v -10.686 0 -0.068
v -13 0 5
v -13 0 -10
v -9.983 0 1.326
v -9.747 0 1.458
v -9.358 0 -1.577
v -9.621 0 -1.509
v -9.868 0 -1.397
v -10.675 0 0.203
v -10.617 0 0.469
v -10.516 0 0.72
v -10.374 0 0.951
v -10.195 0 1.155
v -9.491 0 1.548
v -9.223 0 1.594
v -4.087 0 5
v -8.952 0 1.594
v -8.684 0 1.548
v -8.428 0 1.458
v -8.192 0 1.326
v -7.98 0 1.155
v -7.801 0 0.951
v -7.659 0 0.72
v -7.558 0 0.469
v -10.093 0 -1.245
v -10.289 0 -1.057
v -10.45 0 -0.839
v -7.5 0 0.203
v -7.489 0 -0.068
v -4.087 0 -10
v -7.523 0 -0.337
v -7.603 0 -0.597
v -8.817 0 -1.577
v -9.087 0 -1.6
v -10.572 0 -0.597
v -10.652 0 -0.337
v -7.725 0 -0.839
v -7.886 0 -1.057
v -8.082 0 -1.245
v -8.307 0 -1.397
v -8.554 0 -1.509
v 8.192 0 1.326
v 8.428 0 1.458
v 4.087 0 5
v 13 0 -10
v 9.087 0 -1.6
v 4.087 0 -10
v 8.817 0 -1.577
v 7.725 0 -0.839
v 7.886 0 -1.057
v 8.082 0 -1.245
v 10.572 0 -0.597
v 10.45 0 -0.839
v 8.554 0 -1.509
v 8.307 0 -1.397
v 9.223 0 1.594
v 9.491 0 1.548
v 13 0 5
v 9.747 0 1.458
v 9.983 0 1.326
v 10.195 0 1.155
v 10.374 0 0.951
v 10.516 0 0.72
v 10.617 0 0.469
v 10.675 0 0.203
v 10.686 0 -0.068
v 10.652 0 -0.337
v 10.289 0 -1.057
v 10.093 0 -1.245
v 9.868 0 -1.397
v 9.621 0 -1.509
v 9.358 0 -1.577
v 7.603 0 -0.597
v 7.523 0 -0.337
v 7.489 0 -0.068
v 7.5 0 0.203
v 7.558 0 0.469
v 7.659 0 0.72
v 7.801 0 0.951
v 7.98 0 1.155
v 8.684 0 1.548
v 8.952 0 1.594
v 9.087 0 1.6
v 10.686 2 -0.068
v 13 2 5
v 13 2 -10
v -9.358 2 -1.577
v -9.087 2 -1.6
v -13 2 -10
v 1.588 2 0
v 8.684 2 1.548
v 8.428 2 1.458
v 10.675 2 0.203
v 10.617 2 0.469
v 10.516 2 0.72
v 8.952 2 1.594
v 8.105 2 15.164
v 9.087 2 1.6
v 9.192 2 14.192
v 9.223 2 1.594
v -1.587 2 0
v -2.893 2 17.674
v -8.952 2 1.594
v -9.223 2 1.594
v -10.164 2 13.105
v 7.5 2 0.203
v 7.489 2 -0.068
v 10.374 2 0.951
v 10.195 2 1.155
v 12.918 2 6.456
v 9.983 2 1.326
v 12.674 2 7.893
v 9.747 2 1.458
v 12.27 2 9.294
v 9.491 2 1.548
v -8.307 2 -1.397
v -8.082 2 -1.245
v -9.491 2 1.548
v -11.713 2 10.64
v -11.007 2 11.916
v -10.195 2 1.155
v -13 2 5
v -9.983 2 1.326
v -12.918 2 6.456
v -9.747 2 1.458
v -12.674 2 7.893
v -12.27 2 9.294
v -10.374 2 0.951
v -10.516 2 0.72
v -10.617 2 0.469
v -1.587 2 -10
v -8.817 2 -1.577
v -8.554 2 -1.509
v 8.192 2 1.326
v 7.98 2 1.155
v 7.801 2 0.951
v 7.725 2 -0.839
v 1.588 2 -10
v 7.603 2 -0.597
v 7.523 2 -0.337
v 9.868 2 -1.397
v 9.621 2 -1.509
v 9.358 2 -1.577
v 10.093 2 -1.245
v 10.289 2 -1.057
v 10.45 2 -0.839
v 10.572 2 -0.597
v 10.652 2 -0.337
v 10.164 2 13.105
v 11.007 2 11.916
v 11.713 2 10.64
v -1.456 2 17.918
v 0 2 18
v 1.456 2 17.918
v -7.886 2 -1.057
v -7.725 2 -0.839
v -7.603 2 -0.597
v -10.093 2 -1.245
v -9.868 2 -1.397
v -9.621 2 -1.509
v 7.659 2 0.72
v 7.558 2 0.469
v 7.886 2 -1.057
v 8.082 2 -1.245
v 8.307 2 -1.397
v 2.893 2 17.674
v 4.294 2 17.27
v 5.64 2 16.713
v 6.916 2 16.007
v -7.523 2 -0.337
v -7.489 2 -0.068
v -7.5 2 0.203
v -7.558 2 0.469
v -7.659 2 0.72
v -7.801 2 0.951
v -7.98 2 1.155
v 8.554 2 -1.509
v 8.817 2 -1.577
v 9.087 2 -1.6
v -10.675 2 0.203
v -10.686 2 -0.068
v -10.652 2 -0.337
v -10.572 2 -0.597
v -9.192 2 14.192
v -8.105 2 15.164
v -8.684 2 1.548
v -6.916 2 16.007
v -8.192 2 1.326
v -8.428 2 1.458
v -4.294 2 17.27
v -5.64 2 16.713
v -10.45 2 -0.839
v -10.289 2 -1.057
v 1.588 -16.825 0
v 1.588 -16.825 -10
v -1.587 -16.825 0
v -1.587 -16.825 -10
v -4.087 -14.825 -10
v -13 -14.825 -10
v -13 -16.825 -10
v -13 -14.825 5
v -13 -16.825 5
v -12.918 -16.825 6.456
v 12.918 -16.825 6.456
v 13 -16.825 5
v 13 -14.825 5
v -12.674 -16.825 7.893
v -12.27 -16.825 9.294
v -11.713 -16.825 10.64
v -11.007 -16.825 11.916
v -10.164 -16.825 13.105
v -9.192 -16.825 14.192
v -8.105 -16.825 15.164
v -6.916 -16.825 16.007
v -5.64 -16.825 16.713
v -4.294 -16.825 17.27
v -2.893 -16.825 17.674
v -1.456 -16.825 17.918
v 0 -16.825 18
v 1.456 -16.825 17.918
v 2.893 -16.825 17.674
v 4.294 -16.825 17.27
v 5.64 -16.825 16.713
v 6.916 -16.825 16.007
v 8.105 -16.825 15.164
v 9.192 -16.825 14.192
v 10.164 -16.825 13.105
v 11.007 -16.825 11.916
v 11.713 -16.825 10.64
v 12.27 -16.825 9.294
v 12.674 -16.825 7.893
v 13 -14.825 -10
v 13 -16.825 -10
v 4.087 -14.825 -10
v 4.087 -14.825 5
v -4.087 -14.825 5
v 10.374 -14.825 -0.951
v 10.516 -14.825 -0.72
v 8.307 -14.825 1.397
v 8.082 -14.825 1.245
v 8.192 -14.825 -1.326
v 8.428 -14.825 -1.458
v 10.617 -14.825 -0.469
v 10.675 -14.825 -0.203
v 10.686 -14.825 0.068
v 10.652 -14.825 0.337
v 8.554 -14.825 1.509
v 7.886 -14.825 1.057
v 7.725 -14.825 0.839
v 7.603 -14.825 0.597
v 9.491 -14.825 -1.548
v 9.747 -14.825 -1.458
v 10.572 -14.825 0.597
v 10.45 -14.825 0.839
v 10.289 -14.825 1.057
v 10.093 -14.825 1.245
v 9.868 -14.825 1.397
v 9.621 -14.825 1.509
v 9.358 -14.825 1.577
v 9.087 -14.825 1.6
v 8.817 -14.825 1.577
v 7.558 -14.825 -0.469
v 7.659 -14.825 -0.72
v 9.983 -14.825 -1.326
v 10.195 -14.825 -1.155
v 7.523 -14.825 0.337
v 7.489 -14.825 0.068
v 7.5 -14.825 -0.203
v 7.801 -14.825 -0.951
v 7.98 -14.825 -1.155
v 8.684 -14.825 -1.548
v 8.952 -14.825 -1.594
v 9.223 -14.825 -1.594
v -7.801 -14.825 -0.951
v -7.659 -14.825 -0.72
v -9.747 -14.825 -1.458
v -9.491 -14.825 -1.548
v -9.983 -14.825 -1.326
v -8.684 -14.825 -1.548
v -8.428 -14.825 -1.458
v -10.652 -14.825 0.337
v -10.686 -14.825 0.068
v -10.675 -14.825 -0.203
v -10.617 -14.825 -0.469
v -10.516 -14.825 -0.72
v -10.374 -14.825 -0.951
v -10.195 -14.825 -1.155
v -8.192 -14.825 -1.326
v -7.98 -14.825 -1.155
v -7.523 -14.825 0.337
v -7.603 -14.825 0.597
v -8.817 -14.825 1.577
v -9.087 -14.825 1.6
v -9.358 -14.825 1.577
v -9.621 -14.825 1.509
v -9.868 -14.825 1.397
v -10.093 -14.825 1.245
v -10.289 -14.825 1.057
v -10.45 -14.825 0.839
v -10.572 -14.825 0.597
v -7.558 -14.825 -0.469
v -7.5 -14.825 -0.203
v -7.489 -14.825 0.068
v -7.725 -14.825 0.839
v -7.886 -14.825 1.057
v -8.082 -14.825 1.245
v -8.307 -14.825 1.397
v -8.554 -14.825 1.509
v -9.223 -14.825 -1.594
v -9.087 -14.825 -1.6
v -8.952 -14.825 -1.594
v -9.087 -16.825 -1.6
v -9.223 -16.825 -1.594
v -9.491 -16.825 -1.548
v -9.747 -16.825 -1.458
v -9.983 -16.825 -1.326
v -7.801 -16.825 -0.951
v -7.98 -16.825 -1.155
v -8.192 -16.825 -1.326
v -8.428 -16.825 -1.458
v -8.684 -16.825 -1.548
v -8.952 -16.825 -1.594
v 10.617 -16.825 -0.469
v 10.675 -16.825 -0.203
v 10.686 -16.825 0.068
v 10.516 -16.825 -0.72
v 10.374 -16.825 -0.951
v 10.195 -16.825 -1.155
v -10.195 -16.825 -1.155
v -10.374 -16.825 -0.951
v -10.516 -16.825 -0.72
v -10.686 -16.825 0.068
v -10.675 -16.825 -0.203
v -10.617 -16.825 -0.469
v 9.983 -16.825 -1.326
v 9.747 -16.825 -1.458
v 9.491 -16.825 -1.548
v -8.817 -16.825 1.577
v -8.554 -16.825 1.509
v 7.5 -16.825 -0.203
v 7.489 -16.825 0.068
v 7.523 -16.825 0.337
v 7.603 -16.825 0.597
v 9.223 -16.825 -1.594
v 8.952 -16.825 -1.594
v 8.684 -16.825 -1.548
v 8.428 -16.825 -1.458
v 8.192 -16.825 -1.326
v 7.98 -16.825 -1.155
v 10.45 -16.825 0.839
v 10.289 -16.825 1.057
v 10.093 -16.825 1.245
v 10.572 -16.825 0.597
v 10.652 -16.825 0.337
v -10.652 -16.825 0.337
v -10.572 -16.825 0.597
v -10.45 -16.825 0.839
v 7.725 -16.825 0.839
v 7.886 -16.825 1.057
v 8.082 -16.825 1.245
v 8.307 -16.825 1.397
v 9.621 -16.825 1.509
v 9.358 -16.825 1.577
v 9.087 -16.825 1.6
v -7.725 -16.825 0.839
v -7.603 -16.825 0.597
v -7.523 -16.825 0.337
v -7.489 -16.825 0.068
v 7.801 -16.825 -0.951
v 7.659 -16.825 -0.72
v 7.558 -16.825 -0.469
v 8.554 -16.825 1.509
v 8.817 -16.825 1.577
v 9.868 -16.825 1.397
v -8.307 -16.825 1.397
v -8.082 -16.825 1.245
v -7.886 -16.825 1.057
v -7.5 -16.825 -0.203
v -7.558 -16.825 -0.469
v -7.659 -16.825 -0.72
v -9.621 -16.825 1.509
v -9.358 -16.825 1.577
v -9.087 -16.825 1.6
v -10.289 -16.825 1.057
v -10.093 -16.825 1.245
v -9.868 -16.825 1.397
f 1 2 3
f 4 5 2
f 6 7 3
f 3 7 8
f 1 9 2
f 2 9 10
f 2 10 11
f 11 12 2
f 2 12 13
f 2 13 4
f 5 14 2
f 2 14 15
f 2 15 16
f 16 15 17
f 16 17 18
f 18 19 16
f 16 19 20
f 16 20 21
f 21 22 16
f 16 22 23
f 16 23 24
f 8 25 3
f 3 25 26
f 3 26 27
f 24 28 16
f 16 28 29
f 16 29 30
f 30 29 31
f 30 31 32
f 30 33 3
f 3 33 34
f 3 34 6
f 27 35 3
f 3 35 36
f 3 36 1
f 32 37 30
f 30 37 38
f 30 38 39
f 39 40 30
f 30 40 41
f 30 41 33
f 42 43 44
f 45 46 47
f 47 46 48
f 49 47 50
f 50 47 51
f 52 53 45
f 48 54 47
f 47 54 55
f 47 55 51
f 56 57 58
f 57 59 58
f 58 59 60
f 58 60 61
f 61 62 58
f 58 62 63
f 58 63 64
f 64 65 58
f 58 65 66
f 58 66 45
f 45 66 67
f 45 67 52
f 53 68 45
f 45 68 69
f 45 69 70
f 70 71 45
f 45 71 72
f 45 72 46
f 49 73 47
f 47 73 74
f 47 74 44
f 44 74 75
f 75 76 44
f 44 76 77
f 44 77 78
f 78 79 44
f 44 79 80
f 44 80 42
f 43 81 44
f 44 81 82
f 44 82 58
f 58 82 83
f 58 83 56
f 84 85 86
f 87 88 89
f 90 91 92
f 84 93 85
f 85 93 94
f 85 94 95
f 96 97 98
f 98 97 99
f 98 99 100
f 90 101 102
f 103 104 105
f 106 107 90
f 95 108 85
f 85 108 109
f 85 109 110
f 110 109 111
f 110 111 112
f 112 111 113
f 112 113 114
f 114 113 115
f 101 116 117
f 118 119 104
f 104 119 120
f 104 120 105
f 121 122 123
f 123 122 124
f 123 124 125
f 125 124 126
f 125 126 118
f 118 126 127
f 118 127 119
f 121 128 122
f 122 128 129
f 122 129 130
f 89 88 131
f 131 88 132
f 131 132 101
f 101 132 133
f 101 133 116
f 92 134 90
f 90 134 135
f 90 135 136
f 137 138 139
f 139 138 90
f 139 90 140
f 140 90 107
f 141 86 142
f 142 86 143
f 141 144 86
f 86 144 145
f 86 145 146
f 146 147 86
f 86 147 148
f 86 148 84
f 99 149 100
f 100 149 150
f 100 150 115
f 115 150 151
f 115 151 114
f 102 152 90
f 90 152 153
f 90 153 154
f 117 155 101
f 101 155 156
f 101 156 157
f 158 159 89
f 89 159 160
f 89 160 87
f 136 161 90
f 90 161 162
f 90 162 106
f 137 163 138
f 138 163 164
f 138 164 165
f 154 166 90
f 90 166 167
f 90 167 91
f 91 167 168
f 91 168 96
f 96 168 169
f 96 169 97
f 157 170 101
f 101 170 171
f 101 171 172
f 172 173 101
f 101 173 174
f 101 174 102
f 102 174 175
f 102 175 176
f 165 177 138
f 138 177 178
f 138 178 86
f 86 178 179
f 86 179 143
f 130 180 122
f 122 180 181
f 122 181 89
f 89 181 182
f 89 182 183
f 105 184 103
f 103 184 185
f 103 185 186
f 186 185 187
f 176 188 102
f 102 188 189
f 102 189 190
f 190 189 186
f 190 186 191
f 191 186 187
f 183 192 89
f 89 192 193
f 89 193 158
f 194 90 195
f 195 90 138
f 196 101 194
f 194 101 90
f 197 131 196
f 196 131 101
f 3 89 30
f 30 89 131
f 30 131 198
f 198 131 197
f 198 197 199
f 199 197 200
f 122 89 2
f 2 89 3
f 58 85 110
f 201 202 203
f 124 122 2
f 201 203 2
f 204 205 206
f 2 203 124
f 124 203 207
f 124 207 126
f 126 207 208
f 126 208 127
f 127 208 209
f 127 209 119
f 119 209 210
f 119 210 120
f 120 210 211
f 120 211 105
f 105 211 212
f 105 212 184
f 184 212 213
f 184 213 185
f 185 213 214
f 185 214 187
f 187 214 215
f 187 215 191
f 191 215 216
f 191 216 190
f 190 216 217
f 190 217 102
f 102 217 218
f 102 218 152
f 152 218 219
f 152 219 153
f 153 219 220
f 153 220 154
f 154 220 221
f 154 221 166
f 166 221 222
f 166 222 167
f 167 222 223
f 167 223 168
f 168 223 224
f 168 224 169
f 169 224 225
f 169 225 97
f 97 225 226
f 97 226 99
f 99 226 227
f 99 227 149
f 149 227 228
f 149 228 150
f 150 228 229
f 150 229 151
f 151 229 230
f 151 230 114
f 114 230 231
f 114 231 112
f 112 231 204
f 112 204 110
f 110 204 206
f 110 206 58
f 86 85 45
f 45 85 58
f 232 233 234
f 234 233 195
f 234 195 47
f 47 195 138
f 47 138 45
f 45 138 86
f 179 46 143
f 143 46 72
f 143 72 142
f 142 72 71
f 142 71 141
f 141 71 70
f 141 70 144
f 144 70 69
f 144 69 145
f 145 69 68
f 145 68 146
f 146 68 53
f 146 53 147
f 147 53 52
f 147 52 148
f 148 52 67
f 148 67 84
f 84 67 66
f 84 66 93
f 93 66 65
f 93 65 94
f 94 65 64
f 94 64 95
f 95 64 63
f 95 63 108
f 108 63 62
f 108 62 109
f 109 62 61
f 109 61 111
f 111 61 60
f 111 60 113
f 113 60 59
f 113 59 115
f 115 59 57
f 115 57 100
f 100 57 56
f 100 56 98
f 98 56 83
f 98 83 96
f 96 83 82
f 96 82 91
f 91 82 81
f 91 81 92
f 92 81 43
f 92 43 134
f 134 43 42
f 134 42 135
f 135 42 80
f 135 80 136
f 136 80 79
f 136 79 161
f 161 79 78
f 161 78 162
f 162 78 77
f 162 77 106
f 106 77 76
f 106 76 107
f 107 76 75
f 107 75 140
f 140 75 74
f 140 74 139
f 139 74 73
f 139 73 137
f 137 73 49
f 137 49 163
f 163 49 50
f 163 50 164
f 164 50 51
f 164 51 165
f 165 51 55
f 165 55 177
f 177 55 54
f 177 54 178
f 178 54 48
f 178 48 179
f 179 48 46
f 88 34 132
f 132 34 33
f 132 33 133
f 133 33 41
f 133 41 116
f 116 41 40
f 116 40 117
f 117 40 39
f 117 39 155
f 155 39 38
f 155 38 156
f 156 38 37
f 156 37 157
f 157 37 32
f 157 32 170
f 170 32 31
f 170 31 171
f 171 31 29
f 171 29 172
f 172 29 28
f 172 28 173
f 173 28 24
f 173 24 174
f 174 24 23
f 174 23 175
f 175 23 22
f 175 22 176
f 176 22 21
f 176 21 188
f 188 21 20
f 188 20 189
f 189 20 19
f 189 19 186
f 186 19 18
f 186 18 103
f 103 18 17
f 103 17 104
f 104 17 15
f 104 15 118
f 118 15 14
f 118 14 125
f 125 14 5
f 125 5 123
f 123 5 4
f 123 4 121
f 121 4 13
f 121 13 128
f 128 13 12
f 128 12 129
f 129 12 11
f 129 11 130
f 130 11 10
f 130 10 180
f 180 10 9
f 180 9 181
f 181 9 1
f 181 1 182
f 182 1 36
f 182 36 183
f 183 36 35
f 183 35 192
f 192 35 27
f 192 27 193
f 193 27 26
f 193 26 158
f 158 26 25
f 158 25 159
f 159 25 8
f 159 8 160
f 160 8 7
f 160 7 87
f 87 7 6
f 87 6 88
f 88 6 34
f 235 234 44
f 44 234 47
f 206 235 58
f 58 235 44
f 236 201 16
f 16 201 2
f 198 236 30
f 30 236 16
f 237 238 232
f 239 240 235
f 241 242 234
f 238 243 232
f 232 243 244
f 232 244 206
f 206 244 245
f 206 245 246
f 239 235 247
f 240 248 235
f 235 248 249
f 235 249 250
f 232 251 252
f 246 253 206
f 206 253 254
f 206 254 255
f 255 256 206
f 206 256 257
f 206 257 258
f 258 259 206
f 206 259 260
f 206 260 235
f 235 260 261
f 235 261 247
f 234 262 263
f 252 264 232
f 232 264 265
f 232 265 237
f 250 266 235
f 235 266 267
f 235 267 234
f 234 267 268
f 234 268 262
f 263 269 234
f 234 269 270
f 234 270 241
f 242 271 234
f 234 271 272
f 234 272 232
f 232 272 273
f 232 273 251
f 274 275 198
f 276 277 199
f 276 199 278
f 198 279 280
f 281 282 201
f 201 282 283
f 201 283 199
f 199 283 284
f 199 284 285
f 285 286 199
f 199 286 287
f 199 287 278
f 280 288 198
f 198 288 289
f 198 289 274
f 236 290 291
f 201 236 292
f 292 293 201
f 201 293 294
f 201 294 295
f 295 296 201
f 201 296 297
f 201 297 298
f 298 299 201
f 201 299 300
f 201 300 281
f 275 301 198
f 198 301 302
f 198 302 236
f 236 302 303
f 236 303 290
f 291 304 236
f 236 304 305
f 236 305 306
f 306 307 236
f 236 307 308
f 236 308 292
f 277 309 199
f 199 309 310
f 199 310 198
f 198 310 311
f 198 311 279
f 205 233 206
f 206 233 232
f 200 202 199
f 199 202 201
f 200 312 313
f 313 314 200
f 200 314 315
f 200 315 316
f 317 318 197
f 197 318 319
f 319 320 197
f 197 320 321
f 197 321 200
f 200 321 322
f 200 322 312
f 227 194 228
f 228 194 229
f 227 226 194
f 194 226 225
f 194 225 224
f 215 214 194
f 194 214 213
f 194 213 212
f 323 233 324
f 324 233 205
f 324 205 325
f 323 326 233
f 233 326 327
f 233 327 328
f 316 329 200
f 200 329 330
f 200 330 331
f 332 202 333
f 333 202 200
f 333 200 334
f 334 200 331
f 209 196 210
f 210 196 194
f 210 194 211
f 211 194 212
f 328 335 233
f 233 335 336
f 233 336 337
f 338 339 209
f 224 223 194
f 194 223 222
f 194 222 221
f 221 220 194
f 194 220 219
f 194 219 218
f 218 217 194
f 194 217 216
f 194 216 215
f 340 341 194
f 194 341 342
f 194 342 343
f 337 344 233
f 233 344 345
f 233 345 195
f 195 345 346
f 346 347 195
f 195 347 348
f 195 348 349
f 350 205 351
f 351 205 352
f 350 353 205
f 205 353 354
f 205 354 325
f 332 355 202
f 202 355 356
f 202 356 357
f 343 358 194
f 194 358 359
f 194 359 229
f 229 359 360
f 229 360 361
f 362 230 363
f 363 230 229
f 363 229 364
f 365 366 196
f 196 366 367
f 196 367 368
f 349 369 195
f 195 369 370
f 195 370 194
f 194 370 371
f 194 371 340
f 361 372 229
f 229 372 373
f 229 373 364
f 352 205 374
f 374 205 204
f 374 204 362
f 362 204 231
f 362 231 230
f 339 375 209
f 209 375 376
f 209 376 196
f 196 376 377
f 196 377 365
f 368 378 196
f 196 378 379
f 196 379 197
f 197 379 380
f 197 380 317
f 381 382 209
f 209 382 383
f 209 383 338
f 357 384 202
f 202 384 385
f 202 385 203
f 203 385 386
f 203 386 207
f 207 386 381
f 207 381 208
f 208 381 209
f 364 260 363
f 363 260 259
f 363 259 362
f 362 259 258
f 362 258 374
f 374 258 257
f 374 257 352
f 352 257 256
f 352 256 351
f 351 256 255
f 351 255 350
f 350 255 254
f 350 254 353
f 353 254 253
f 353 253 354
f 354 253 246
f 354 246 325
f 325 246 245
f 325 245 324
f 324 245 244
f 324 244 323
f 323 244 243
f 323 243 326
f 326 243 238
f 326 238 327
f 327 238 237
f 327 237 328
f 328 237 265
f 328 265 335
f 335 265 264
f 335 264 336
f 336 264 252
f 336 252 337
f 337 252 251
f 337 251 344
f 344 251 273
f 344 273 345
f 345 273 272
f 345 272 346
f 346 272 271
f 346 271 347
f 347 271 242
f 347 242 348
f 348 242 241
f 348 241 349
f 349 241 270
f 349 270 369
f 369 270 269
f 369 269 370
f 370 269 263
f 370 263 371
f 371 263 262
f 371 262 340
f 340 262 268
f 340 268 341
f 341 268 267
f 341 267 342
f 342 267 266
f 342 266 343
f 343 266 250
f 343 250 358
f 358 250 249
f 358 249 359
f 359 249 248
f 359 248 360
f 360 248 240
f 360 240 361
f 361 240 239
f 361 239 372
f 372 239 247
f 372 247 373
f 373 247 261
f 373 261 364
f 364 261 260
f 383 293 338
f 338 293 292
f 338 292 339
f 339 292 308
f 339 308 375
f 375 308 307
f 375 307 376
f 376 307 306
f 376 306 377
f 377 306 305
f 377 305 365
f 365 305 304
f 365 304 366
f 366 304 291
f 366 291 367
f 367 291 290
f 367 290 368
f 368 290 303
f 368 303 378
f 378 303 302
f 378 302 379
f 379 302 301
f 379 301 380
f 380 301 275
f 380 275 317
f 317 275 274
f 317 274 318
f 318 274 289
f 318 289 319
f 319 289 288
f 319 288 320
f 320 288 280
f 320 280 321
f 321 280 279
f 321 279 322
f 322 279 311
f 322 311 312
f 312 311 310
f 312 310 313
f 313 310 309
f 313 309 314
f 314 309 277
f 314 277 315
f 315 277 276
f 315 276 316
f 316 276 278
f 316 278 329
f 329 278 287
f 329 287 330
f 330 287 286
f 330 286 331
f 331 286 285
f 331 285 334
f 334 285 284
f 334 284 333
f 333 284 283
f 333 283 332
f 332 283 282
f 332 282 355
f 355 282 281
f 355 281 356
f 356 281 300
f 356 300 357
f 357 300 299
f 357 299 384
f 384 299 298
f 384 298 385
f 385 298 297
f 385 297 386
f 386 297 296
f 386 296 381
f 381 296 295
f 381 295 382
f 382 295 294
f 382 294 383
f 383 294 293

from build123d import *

# Parameters (mm, degrees)
SKETCH1_R           = 1.6
BOSS_EXTRUDE1_DEPTH = 2
BOSS_EXTRUDE3_START = 7.4125
BOSS_EXTRUDE3_DEPTH = 7.4125


with BuildPart() as part:
    # Sketch1 → Boss-Extrude1 (new body)
    with BuildSketch(Plane(origin=(0, 0, 0), x_dir=(1, 0, 0), z_dir=(0, 1, 0))):
        with BuildLine():
            Line((-1.5875, 0), (1.5875, 0))
            Line((1.5875, 0), (1.5875, 10))
            Line((1.5875, 10), (13, 10))
            Line((13, 10), (13, -5))
            ThreePointArc((13, -5), (0, -18), (-13, -5))
            Line((-13, -5), (-13, 10))
            Line((-13, 10), (-1.5875, 10))
            Line((-1.5875, 10), (-1.5875, 0))
        make_face()
        with Locations(Location((9.0875, 0, 0), (0, 0, 270))):
            Circle(SKETCH1_R, mode=Mode.SUBTRACT)
        with Locations(Location((-9.0875, 0, 0), (0, 0, 90))):
            Circle(SKETCH1_R, mode=Mode.SUBTRACT)
    boss_extrude1 = extrude(amount=BOSS_EXTRUDE1_DEPTH)

    # Sketch3 → Boss-Extrude3 (add)
    with BuildSketch(Plane.XZ.offset(BOSS_EXTRUDE3_START)):
        with BuildLine():
            Line((4.0875, -10), (1.5875, -10))
            Line((1.5875, -10), (1.5875, 0))
            Line((1.5875, 0), (-1.5875, 0))
            Line((-1.5875, 0), (-1.5875, -10))
            Line((-1.5875, -10), (-4.0875, -10))
            Line((-4.0875, -10), (-4.0875, 5))
            Line((-4.0875, 5), (-13, 5))
            ThreePointArc((-13, 5), (0, 18), (13, 5))
            Line((13, 5), (4.0875, 5))
            Line((4.0875, 5), (4.0875, -10))
        make_face()
    boss_extrude3 = extrude(amount=-BOSS_EXTRUDE3_DEPTH)

    # Mirror11: Boss-Extrude3 across plane
    add(boss_extrude3.mirror(Plane(origin=(0, -7.4125, 0), x_dir=(0, 0, 1), z_dir=(0, -1, 0))))

    # Mirror12: Boss-Extrude1 across plane
    add(boss_extrude1.mirror(Plane(origin=(0, -7.4125, 0), x_dir=(0, 0, 1), z_dir=(0, -1, 0))))


solid = part.part
